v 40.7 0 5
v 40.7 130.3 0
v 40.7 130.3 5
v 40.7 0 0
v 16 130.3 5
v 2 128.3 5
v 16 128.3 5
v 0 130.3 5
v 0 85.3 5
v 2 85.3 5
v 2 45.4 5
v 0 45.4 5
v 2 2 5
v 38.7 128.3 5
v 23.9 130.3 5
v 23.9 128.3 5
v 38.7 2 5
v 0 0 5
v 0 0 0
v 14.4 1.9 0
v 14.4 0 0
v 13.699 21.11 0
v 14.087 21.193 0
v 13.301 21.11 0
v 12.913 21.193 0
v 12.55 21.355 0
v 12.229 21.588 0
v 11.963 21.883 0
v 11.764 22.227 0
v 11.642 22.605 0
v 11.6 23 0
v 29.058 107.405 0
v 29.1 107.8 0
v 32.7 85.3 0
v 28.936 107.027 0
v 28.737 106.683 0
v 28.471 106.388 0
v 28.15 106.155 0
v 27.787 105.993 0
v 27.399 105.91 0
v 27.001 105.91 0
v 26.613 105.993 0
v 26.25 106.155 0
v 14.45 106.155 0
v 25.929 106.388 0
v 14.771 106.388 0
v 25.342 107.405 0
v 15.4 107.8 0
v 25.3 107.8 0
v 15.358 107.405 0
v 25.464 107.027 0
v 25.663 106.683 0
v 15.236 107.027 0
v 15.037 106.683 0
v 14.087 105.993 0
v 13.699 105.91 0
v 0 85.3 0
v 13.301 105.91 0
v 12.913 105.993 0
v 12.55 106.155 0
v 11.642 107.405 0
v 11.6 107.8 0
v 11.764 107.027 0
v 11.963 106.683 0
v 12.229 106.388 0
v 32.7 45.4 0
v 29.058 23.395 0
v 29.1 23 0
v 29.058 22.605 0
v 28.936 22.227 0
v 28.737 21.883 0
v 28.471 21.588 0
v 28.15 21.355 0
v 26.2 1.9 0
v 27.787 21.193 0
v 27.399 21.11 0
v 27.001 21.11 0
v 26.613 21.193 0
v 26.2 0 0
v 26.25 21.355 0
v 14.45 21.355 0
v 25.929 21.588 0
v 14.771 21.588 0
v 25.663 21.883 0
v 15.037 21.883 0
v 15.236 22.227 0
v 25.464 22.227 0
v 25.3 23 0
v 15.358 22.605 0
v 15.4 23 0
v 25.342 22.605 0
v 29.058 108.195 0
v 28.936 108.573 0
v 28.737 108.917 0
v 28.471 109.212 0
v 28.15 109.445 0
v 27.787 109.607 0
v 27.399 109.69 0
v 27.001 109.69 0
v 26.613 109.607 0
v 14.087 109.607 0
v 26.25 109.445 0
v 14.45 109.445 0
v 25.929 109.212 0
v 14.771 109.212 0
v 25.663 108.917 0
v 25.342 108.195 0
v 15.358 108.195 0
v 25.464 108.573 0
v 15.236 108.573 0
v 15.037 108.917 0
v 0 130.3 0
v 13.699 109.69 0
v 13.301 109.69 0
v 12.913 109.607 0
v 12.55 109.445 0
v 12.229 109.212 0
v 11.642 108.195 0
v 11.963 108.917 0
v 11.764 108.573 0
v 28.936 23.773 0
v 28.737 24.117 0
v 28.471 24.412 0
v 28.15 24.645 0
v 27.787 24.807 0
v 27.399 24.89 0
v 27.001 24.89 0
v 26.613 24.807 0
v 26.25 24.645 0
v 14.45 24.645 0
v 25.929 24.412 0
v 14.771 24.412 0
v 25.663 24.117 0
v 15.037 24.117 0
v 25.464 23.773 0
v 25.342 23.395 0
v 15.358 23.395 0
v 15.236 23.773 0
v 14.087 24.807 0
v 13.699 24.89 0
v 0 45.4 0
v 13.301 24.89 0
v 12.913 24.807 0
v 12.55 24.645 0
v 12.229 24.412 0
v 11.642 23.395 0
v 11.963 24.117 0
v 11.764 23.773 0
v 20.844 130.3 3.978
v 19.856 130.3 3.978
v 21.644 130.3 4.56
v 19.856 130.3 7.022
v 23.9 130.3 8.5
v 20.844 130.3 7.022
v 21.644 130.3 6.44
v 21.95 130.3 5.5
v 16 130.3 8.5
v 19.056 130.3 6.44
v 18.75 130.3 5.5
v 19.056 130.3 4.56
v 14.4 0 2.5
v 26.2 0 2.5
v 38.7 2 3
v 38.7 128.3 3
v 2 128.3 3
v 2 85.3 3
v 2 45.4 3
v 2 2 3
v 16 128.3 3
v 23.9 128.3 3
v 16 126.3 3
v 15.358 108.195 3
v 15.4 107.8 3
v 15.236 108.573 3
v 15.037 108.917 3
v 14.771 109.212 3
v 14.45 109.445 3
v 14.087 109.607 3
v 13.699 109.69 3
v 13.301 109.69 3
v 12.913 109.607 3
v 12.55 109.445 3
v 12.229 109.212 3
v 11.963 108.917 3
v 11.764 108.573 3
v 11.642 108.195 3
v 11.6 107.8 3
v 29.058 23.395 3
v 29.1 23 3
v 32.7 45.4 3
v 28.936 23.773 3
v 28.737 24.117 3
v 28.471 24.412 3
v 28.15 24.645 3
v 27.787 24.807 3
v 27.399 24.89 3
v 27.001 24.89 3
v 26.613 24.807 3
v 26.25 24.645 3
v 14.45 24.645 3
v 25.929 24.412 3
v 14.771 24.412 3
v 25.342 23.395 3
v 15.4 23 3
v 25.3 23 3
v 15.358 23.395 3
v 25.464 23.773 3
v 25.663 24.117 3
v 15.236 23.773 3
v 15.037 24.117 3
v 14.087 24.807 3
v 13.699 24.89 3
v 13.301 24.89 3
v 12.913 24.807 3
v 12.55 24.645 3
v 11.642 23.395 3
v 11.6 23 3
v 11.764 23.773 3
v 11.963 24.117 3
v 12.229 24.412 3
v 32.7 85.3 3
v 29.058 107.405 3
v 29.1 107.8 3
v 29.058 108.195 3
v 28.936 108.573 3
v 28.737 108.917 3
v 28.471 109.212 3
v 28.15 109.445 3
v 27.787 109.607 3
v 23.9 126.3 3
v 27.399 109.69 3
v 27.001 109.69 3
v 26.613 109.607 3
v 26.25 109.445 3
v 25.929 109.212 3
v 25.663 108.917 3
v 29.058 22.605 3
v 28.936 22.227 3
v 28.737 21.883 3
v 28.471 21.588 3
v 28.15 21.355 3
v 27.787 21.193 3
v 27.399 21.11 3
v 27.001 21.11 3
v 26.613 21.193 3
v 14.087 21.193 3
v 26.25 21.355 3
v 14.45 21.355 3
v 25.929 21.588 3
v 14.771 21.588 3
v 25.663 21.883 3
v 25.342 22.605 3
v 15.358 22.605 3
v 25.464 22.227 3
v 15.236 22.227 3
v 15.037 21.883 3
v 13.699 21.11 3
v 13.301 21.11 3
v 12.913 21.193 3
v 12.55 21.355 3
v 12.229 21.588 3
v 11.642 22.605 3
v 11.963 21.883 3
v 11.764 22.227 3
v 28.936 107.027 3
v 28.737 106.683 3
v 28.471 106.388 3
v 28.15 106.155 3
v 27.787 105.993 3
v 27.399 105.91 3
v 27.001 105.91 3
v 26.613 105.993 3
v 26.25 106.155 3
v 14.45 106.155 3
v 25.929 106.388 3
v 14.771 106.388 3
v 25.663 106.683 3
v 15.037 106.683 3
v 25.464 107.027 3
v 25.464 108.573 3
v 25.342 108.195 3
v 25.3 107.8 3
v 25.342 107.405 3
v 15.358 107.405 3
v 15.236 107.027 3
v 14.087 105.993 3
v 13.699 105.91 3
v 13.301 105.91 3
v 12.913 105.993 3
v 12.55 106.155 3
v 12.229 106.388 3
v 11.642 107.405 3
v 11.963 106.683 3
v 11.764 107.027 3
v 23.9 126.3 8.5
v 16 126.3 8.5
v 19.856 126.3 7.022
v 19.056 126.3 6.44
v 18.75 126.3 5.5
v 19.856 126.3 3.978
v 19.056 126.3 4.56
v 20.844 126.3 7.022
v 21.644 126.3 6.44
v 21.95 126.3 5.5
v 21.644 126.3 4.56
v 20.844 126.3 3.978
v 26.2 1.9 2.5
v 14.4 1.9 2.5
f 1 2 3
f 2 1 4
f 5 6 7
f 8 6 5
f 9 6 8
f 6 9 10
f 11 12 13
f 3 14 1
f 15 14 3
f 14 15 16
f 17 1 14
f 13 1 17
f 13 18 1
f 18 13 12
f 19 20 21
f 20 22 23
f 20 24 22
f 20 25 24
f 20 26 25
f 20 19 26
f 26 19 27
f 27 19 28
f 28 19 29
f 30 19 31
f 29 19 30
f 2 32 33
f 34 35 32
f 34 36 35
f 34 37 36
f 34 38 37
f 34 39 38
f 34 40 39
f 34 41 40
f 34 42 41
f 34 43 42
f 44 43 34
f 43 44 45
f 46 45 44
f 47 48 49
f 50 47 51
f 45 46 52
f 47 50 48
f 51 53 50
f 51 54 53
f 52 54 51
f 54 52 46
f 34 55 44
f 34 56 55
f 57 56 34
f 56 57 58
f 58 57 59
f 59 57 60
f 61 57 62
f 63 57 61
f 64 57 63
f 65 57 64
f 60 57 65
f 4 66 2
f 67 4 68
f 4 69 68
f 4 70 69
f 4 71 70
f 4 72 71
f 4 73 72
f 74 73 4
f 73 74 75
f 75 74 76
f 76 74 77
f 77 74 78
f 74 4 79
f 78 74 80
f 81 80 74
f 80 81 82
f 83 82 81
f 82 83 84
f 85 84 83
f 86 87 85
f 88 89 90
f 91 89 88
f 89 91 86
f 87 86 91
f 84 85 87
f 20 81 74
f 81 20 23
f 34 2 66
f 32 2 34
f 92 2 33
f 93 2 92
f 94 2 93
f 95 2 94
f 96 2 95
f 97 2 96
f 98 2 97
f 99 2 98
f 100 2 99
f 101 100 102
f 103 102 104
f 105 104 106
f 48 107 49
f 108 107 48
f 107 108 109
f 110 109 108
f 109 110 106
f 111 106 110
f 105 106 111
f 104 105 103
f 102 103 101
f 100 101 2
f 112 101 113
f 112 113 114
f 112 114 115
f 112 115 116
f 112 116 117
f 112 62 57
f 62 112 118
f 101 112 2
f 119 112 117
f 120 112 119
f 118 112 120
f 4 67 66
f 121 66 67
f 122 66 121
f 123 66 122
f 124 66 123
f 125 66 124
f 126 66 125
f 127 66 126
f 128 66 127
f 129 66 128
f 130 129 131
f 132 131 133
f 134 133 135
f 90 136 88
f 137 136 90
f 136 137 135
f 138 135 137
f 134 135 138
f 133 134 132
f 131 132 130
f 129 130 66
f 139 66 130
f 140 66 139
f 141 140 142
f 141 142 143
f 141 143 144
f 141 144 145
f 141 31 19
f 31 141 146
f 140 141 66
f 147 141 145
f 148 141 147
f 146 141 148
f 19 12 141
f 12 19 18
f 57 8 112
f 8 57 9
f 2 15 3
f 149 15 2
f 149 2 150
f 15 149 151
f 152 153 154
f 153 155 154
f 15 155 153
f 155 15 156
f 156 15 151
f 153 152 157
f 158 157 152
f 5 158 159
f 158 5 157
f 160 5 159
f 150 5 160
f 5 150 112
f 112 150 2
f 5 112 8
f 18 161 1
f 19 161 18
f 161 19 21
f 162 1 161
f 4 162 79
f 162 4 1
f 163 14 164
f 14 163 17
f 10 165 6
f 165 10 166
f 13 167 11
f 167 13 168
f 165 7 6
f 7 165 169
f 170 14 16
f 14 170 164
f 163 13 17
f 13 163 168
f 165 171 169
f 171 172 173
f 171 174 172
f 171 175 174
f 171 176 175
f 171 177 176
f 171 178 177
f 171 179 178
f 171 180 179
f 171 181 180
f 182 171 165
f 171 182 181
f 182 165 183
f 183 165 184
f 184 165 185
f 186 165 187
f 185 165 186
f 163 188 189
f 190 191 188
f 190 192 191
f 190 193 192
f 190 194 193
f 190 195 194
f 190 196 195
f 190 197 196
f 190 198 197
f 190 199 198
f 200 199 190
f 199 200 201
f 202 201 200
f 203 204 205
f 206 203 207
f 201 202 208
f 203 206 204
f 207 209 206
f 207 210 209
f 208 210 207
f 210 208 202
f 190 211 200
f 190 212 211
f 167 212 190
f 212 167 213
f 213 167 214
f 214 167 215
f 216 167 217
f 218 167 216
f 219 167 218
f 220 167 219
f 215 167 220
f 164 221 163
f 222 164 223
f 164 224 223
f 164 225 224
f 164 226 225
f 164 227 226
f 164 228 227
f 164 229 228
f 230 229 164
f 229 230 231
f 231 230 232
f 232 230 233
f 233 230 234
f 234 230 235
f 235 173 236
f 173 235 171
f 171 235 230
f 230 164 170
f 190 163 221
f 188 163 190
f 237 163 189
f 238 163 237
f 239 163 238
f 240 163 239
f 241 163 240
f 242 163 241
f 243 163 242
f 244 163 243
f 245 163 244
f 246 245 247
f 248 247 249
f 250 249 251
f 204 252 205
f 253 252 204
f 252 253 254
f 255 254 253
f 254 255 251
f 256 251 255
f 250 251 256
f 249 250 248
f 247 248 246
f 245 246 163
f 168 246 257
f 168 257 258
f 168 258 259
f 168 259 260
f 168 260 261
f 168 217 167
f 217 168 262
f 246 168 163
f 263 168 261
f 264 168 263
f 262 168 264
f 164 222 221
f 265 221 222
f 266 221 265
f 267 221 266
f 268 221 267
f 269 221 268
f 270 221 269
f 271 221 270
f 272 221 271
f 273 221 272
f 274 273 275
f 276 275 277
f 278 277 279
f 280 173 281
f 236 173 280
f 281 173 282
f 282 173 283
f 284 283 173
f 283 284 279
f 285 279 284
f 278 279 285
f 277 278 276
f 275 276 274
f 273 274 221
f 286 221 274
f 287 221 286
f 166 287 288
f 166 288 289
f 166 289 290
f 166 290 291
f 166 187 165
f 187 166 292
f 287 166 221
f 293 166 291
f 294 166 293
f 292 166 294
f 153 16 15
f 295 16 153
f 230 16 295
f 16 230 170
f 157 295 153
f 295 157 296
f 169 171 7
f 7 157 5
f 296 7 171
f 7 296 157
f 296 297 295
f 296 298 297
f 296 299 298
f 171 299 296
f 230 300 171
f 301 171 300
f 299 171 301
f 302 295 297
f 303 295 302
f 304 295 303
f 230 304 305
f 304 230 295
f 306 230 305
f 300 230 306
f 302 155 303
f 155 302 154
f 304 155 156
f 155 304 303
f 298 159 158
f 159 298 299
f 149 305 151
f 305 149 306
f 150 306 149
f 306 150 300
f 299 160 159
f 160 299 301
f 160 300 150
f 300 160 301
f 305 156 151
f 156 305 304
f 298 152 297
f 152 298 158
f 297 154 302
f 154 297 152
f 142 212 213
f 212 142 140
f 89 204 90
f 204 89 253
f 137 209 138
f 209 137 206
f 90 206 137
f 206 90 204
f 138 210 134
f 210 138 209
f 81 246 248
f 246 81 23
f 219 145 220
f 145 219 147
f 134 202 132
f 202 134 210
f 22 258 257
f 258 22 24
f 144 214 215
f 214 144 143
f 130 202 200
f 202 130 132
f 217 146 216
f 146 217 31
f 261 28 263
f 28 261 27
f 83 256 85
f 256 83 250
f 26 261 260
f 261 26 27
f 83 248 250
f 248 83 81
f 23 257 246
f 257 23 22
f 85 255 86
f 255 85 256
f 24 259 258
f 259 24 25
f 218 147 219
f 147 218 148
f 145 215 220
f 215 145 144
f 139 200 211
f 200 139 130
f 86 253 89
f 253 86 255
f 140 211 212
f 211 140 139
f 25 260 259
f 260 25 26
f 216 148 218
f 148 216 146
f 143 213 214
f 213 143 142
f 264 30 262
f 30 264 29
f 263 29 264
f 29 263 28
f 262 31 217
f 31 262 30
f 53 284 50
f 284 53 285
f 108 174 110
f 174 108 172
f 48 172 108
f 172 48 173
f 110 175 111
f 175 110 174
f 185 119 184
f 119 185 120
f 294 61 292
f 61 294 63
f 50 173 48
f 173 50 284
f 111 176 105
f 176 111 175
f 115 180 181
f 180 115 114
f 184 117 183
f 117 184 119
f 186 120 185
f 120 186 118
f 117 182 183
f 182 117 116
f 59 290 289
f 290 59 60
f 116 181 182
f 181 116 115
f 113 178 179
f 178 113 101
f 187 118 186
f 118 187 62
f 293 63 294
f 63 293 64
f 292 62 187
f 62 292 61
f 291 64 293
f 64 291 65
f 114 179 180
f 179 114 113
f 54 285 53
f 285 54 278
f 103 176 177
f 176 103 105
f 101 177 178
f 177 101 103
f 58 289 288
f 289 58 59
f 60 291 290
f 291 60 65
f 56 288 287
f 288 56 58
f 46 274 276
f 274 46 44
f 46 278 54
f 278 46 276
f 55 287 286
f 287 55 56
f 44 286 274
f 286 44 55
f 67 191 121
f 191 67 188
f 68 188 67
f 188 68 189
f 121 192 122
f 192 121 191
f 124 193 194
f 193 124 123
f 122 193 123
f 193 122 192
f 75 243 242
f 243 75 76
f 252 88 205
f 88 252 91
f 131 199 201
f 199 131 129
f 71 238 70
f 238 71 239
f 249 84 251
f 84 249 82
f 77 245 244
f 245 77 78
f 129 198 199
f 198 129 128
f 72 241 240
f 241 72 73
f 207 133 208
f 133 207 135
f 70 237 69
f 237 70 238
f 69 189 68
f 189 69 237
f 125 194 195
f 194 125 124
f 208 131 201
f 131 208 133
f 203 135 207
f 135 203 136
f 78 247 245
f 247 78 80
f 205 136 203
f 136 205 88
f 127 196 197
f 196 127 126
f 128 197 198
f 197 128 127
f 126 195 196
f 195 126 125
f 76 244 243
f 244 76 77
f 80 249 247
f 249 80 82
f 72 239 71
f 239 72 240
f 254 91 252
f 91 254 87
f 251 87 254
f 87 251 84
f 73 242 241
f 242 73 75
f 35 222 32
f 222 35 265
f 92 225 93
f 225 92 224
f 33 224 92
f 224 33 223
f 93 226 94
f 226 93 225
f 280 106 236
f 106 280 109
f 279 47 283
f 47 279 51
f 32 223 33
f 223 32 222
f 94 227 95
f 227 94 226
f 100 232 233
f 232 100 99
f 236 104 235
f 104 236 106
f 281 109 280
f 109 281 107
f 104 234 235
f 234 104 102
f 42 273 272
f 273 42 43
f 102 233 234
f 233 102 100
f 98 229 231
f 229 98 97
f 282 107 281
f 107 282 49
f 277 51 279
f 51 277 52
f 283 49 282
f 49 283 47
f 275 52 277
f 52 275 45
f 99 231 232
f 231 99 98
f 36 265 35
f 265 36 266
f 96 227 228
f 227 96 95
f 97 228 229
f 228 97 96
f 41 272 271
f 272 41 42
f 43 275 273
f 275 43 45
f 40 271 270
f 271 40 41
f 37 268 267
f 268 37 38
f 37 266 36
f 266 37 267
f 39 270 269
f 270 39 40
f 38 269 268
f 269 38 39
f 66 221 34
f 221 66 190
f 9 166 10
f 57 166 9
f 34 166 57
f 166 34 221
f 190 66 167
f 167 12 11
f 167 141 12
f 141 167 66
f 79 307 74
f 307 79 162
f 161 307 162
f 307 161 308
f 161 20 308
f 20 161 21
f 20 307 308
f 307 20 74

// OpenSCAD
difference(){
    union() {
        // Base
        cube([40.7,130.3,3]);
        // Borde
        difference() {
            cube([40.7,130.3,5]);
            translate([2,2,-1]) 
                cube([36.7,126.3,7]);
        }
        // Base tornillo
        translate ([16,126.3,0])
            cube([7.9,4,8.5]);
    }

    // Taladro tornillo
    translate ([20.35,130.8,5.5])
        rotate([90,0,0])
            cylinder(h=20, r=1.6, center=true, $fn=10);
    // Taladro sup. izq.
    translate ([13.5,23,0])
        cylinder(h=20, r=1.9, center=true, $fn=30);
    // Taladro inf. izq.
    translate ([13.5,107.8,0])
        cylinder(h=20, r=1.9, center=true, $fn=30);
    // Taladro sup. der.
    translate ([27.2,23,0])
        cylinder(h=20, r=1.9, center=true, $fn=30);
    // Taladro inf. der.
    translate ([27.2,107.8,0])
        cylinder(h=20, r=1.9, center=true, $fn=30);
    // Salida cableado
    translate ([8,45.4,-1])
        cube([24.7,39.9,20]);
    // Salida cableado (lateral)
    translate ([-1,45.4,-1])
        cube([24.7,39.9,20]);
    // Texto
    translate ([12,35,3])
        text("POD SUITE", size = 2);
    translate ([13,30,3])
        text(" HOSTEL", size = 2);
    // Cierre
    translate([14.4,-1,-1])
        cube([11.8,2.9,3.5]);
}
